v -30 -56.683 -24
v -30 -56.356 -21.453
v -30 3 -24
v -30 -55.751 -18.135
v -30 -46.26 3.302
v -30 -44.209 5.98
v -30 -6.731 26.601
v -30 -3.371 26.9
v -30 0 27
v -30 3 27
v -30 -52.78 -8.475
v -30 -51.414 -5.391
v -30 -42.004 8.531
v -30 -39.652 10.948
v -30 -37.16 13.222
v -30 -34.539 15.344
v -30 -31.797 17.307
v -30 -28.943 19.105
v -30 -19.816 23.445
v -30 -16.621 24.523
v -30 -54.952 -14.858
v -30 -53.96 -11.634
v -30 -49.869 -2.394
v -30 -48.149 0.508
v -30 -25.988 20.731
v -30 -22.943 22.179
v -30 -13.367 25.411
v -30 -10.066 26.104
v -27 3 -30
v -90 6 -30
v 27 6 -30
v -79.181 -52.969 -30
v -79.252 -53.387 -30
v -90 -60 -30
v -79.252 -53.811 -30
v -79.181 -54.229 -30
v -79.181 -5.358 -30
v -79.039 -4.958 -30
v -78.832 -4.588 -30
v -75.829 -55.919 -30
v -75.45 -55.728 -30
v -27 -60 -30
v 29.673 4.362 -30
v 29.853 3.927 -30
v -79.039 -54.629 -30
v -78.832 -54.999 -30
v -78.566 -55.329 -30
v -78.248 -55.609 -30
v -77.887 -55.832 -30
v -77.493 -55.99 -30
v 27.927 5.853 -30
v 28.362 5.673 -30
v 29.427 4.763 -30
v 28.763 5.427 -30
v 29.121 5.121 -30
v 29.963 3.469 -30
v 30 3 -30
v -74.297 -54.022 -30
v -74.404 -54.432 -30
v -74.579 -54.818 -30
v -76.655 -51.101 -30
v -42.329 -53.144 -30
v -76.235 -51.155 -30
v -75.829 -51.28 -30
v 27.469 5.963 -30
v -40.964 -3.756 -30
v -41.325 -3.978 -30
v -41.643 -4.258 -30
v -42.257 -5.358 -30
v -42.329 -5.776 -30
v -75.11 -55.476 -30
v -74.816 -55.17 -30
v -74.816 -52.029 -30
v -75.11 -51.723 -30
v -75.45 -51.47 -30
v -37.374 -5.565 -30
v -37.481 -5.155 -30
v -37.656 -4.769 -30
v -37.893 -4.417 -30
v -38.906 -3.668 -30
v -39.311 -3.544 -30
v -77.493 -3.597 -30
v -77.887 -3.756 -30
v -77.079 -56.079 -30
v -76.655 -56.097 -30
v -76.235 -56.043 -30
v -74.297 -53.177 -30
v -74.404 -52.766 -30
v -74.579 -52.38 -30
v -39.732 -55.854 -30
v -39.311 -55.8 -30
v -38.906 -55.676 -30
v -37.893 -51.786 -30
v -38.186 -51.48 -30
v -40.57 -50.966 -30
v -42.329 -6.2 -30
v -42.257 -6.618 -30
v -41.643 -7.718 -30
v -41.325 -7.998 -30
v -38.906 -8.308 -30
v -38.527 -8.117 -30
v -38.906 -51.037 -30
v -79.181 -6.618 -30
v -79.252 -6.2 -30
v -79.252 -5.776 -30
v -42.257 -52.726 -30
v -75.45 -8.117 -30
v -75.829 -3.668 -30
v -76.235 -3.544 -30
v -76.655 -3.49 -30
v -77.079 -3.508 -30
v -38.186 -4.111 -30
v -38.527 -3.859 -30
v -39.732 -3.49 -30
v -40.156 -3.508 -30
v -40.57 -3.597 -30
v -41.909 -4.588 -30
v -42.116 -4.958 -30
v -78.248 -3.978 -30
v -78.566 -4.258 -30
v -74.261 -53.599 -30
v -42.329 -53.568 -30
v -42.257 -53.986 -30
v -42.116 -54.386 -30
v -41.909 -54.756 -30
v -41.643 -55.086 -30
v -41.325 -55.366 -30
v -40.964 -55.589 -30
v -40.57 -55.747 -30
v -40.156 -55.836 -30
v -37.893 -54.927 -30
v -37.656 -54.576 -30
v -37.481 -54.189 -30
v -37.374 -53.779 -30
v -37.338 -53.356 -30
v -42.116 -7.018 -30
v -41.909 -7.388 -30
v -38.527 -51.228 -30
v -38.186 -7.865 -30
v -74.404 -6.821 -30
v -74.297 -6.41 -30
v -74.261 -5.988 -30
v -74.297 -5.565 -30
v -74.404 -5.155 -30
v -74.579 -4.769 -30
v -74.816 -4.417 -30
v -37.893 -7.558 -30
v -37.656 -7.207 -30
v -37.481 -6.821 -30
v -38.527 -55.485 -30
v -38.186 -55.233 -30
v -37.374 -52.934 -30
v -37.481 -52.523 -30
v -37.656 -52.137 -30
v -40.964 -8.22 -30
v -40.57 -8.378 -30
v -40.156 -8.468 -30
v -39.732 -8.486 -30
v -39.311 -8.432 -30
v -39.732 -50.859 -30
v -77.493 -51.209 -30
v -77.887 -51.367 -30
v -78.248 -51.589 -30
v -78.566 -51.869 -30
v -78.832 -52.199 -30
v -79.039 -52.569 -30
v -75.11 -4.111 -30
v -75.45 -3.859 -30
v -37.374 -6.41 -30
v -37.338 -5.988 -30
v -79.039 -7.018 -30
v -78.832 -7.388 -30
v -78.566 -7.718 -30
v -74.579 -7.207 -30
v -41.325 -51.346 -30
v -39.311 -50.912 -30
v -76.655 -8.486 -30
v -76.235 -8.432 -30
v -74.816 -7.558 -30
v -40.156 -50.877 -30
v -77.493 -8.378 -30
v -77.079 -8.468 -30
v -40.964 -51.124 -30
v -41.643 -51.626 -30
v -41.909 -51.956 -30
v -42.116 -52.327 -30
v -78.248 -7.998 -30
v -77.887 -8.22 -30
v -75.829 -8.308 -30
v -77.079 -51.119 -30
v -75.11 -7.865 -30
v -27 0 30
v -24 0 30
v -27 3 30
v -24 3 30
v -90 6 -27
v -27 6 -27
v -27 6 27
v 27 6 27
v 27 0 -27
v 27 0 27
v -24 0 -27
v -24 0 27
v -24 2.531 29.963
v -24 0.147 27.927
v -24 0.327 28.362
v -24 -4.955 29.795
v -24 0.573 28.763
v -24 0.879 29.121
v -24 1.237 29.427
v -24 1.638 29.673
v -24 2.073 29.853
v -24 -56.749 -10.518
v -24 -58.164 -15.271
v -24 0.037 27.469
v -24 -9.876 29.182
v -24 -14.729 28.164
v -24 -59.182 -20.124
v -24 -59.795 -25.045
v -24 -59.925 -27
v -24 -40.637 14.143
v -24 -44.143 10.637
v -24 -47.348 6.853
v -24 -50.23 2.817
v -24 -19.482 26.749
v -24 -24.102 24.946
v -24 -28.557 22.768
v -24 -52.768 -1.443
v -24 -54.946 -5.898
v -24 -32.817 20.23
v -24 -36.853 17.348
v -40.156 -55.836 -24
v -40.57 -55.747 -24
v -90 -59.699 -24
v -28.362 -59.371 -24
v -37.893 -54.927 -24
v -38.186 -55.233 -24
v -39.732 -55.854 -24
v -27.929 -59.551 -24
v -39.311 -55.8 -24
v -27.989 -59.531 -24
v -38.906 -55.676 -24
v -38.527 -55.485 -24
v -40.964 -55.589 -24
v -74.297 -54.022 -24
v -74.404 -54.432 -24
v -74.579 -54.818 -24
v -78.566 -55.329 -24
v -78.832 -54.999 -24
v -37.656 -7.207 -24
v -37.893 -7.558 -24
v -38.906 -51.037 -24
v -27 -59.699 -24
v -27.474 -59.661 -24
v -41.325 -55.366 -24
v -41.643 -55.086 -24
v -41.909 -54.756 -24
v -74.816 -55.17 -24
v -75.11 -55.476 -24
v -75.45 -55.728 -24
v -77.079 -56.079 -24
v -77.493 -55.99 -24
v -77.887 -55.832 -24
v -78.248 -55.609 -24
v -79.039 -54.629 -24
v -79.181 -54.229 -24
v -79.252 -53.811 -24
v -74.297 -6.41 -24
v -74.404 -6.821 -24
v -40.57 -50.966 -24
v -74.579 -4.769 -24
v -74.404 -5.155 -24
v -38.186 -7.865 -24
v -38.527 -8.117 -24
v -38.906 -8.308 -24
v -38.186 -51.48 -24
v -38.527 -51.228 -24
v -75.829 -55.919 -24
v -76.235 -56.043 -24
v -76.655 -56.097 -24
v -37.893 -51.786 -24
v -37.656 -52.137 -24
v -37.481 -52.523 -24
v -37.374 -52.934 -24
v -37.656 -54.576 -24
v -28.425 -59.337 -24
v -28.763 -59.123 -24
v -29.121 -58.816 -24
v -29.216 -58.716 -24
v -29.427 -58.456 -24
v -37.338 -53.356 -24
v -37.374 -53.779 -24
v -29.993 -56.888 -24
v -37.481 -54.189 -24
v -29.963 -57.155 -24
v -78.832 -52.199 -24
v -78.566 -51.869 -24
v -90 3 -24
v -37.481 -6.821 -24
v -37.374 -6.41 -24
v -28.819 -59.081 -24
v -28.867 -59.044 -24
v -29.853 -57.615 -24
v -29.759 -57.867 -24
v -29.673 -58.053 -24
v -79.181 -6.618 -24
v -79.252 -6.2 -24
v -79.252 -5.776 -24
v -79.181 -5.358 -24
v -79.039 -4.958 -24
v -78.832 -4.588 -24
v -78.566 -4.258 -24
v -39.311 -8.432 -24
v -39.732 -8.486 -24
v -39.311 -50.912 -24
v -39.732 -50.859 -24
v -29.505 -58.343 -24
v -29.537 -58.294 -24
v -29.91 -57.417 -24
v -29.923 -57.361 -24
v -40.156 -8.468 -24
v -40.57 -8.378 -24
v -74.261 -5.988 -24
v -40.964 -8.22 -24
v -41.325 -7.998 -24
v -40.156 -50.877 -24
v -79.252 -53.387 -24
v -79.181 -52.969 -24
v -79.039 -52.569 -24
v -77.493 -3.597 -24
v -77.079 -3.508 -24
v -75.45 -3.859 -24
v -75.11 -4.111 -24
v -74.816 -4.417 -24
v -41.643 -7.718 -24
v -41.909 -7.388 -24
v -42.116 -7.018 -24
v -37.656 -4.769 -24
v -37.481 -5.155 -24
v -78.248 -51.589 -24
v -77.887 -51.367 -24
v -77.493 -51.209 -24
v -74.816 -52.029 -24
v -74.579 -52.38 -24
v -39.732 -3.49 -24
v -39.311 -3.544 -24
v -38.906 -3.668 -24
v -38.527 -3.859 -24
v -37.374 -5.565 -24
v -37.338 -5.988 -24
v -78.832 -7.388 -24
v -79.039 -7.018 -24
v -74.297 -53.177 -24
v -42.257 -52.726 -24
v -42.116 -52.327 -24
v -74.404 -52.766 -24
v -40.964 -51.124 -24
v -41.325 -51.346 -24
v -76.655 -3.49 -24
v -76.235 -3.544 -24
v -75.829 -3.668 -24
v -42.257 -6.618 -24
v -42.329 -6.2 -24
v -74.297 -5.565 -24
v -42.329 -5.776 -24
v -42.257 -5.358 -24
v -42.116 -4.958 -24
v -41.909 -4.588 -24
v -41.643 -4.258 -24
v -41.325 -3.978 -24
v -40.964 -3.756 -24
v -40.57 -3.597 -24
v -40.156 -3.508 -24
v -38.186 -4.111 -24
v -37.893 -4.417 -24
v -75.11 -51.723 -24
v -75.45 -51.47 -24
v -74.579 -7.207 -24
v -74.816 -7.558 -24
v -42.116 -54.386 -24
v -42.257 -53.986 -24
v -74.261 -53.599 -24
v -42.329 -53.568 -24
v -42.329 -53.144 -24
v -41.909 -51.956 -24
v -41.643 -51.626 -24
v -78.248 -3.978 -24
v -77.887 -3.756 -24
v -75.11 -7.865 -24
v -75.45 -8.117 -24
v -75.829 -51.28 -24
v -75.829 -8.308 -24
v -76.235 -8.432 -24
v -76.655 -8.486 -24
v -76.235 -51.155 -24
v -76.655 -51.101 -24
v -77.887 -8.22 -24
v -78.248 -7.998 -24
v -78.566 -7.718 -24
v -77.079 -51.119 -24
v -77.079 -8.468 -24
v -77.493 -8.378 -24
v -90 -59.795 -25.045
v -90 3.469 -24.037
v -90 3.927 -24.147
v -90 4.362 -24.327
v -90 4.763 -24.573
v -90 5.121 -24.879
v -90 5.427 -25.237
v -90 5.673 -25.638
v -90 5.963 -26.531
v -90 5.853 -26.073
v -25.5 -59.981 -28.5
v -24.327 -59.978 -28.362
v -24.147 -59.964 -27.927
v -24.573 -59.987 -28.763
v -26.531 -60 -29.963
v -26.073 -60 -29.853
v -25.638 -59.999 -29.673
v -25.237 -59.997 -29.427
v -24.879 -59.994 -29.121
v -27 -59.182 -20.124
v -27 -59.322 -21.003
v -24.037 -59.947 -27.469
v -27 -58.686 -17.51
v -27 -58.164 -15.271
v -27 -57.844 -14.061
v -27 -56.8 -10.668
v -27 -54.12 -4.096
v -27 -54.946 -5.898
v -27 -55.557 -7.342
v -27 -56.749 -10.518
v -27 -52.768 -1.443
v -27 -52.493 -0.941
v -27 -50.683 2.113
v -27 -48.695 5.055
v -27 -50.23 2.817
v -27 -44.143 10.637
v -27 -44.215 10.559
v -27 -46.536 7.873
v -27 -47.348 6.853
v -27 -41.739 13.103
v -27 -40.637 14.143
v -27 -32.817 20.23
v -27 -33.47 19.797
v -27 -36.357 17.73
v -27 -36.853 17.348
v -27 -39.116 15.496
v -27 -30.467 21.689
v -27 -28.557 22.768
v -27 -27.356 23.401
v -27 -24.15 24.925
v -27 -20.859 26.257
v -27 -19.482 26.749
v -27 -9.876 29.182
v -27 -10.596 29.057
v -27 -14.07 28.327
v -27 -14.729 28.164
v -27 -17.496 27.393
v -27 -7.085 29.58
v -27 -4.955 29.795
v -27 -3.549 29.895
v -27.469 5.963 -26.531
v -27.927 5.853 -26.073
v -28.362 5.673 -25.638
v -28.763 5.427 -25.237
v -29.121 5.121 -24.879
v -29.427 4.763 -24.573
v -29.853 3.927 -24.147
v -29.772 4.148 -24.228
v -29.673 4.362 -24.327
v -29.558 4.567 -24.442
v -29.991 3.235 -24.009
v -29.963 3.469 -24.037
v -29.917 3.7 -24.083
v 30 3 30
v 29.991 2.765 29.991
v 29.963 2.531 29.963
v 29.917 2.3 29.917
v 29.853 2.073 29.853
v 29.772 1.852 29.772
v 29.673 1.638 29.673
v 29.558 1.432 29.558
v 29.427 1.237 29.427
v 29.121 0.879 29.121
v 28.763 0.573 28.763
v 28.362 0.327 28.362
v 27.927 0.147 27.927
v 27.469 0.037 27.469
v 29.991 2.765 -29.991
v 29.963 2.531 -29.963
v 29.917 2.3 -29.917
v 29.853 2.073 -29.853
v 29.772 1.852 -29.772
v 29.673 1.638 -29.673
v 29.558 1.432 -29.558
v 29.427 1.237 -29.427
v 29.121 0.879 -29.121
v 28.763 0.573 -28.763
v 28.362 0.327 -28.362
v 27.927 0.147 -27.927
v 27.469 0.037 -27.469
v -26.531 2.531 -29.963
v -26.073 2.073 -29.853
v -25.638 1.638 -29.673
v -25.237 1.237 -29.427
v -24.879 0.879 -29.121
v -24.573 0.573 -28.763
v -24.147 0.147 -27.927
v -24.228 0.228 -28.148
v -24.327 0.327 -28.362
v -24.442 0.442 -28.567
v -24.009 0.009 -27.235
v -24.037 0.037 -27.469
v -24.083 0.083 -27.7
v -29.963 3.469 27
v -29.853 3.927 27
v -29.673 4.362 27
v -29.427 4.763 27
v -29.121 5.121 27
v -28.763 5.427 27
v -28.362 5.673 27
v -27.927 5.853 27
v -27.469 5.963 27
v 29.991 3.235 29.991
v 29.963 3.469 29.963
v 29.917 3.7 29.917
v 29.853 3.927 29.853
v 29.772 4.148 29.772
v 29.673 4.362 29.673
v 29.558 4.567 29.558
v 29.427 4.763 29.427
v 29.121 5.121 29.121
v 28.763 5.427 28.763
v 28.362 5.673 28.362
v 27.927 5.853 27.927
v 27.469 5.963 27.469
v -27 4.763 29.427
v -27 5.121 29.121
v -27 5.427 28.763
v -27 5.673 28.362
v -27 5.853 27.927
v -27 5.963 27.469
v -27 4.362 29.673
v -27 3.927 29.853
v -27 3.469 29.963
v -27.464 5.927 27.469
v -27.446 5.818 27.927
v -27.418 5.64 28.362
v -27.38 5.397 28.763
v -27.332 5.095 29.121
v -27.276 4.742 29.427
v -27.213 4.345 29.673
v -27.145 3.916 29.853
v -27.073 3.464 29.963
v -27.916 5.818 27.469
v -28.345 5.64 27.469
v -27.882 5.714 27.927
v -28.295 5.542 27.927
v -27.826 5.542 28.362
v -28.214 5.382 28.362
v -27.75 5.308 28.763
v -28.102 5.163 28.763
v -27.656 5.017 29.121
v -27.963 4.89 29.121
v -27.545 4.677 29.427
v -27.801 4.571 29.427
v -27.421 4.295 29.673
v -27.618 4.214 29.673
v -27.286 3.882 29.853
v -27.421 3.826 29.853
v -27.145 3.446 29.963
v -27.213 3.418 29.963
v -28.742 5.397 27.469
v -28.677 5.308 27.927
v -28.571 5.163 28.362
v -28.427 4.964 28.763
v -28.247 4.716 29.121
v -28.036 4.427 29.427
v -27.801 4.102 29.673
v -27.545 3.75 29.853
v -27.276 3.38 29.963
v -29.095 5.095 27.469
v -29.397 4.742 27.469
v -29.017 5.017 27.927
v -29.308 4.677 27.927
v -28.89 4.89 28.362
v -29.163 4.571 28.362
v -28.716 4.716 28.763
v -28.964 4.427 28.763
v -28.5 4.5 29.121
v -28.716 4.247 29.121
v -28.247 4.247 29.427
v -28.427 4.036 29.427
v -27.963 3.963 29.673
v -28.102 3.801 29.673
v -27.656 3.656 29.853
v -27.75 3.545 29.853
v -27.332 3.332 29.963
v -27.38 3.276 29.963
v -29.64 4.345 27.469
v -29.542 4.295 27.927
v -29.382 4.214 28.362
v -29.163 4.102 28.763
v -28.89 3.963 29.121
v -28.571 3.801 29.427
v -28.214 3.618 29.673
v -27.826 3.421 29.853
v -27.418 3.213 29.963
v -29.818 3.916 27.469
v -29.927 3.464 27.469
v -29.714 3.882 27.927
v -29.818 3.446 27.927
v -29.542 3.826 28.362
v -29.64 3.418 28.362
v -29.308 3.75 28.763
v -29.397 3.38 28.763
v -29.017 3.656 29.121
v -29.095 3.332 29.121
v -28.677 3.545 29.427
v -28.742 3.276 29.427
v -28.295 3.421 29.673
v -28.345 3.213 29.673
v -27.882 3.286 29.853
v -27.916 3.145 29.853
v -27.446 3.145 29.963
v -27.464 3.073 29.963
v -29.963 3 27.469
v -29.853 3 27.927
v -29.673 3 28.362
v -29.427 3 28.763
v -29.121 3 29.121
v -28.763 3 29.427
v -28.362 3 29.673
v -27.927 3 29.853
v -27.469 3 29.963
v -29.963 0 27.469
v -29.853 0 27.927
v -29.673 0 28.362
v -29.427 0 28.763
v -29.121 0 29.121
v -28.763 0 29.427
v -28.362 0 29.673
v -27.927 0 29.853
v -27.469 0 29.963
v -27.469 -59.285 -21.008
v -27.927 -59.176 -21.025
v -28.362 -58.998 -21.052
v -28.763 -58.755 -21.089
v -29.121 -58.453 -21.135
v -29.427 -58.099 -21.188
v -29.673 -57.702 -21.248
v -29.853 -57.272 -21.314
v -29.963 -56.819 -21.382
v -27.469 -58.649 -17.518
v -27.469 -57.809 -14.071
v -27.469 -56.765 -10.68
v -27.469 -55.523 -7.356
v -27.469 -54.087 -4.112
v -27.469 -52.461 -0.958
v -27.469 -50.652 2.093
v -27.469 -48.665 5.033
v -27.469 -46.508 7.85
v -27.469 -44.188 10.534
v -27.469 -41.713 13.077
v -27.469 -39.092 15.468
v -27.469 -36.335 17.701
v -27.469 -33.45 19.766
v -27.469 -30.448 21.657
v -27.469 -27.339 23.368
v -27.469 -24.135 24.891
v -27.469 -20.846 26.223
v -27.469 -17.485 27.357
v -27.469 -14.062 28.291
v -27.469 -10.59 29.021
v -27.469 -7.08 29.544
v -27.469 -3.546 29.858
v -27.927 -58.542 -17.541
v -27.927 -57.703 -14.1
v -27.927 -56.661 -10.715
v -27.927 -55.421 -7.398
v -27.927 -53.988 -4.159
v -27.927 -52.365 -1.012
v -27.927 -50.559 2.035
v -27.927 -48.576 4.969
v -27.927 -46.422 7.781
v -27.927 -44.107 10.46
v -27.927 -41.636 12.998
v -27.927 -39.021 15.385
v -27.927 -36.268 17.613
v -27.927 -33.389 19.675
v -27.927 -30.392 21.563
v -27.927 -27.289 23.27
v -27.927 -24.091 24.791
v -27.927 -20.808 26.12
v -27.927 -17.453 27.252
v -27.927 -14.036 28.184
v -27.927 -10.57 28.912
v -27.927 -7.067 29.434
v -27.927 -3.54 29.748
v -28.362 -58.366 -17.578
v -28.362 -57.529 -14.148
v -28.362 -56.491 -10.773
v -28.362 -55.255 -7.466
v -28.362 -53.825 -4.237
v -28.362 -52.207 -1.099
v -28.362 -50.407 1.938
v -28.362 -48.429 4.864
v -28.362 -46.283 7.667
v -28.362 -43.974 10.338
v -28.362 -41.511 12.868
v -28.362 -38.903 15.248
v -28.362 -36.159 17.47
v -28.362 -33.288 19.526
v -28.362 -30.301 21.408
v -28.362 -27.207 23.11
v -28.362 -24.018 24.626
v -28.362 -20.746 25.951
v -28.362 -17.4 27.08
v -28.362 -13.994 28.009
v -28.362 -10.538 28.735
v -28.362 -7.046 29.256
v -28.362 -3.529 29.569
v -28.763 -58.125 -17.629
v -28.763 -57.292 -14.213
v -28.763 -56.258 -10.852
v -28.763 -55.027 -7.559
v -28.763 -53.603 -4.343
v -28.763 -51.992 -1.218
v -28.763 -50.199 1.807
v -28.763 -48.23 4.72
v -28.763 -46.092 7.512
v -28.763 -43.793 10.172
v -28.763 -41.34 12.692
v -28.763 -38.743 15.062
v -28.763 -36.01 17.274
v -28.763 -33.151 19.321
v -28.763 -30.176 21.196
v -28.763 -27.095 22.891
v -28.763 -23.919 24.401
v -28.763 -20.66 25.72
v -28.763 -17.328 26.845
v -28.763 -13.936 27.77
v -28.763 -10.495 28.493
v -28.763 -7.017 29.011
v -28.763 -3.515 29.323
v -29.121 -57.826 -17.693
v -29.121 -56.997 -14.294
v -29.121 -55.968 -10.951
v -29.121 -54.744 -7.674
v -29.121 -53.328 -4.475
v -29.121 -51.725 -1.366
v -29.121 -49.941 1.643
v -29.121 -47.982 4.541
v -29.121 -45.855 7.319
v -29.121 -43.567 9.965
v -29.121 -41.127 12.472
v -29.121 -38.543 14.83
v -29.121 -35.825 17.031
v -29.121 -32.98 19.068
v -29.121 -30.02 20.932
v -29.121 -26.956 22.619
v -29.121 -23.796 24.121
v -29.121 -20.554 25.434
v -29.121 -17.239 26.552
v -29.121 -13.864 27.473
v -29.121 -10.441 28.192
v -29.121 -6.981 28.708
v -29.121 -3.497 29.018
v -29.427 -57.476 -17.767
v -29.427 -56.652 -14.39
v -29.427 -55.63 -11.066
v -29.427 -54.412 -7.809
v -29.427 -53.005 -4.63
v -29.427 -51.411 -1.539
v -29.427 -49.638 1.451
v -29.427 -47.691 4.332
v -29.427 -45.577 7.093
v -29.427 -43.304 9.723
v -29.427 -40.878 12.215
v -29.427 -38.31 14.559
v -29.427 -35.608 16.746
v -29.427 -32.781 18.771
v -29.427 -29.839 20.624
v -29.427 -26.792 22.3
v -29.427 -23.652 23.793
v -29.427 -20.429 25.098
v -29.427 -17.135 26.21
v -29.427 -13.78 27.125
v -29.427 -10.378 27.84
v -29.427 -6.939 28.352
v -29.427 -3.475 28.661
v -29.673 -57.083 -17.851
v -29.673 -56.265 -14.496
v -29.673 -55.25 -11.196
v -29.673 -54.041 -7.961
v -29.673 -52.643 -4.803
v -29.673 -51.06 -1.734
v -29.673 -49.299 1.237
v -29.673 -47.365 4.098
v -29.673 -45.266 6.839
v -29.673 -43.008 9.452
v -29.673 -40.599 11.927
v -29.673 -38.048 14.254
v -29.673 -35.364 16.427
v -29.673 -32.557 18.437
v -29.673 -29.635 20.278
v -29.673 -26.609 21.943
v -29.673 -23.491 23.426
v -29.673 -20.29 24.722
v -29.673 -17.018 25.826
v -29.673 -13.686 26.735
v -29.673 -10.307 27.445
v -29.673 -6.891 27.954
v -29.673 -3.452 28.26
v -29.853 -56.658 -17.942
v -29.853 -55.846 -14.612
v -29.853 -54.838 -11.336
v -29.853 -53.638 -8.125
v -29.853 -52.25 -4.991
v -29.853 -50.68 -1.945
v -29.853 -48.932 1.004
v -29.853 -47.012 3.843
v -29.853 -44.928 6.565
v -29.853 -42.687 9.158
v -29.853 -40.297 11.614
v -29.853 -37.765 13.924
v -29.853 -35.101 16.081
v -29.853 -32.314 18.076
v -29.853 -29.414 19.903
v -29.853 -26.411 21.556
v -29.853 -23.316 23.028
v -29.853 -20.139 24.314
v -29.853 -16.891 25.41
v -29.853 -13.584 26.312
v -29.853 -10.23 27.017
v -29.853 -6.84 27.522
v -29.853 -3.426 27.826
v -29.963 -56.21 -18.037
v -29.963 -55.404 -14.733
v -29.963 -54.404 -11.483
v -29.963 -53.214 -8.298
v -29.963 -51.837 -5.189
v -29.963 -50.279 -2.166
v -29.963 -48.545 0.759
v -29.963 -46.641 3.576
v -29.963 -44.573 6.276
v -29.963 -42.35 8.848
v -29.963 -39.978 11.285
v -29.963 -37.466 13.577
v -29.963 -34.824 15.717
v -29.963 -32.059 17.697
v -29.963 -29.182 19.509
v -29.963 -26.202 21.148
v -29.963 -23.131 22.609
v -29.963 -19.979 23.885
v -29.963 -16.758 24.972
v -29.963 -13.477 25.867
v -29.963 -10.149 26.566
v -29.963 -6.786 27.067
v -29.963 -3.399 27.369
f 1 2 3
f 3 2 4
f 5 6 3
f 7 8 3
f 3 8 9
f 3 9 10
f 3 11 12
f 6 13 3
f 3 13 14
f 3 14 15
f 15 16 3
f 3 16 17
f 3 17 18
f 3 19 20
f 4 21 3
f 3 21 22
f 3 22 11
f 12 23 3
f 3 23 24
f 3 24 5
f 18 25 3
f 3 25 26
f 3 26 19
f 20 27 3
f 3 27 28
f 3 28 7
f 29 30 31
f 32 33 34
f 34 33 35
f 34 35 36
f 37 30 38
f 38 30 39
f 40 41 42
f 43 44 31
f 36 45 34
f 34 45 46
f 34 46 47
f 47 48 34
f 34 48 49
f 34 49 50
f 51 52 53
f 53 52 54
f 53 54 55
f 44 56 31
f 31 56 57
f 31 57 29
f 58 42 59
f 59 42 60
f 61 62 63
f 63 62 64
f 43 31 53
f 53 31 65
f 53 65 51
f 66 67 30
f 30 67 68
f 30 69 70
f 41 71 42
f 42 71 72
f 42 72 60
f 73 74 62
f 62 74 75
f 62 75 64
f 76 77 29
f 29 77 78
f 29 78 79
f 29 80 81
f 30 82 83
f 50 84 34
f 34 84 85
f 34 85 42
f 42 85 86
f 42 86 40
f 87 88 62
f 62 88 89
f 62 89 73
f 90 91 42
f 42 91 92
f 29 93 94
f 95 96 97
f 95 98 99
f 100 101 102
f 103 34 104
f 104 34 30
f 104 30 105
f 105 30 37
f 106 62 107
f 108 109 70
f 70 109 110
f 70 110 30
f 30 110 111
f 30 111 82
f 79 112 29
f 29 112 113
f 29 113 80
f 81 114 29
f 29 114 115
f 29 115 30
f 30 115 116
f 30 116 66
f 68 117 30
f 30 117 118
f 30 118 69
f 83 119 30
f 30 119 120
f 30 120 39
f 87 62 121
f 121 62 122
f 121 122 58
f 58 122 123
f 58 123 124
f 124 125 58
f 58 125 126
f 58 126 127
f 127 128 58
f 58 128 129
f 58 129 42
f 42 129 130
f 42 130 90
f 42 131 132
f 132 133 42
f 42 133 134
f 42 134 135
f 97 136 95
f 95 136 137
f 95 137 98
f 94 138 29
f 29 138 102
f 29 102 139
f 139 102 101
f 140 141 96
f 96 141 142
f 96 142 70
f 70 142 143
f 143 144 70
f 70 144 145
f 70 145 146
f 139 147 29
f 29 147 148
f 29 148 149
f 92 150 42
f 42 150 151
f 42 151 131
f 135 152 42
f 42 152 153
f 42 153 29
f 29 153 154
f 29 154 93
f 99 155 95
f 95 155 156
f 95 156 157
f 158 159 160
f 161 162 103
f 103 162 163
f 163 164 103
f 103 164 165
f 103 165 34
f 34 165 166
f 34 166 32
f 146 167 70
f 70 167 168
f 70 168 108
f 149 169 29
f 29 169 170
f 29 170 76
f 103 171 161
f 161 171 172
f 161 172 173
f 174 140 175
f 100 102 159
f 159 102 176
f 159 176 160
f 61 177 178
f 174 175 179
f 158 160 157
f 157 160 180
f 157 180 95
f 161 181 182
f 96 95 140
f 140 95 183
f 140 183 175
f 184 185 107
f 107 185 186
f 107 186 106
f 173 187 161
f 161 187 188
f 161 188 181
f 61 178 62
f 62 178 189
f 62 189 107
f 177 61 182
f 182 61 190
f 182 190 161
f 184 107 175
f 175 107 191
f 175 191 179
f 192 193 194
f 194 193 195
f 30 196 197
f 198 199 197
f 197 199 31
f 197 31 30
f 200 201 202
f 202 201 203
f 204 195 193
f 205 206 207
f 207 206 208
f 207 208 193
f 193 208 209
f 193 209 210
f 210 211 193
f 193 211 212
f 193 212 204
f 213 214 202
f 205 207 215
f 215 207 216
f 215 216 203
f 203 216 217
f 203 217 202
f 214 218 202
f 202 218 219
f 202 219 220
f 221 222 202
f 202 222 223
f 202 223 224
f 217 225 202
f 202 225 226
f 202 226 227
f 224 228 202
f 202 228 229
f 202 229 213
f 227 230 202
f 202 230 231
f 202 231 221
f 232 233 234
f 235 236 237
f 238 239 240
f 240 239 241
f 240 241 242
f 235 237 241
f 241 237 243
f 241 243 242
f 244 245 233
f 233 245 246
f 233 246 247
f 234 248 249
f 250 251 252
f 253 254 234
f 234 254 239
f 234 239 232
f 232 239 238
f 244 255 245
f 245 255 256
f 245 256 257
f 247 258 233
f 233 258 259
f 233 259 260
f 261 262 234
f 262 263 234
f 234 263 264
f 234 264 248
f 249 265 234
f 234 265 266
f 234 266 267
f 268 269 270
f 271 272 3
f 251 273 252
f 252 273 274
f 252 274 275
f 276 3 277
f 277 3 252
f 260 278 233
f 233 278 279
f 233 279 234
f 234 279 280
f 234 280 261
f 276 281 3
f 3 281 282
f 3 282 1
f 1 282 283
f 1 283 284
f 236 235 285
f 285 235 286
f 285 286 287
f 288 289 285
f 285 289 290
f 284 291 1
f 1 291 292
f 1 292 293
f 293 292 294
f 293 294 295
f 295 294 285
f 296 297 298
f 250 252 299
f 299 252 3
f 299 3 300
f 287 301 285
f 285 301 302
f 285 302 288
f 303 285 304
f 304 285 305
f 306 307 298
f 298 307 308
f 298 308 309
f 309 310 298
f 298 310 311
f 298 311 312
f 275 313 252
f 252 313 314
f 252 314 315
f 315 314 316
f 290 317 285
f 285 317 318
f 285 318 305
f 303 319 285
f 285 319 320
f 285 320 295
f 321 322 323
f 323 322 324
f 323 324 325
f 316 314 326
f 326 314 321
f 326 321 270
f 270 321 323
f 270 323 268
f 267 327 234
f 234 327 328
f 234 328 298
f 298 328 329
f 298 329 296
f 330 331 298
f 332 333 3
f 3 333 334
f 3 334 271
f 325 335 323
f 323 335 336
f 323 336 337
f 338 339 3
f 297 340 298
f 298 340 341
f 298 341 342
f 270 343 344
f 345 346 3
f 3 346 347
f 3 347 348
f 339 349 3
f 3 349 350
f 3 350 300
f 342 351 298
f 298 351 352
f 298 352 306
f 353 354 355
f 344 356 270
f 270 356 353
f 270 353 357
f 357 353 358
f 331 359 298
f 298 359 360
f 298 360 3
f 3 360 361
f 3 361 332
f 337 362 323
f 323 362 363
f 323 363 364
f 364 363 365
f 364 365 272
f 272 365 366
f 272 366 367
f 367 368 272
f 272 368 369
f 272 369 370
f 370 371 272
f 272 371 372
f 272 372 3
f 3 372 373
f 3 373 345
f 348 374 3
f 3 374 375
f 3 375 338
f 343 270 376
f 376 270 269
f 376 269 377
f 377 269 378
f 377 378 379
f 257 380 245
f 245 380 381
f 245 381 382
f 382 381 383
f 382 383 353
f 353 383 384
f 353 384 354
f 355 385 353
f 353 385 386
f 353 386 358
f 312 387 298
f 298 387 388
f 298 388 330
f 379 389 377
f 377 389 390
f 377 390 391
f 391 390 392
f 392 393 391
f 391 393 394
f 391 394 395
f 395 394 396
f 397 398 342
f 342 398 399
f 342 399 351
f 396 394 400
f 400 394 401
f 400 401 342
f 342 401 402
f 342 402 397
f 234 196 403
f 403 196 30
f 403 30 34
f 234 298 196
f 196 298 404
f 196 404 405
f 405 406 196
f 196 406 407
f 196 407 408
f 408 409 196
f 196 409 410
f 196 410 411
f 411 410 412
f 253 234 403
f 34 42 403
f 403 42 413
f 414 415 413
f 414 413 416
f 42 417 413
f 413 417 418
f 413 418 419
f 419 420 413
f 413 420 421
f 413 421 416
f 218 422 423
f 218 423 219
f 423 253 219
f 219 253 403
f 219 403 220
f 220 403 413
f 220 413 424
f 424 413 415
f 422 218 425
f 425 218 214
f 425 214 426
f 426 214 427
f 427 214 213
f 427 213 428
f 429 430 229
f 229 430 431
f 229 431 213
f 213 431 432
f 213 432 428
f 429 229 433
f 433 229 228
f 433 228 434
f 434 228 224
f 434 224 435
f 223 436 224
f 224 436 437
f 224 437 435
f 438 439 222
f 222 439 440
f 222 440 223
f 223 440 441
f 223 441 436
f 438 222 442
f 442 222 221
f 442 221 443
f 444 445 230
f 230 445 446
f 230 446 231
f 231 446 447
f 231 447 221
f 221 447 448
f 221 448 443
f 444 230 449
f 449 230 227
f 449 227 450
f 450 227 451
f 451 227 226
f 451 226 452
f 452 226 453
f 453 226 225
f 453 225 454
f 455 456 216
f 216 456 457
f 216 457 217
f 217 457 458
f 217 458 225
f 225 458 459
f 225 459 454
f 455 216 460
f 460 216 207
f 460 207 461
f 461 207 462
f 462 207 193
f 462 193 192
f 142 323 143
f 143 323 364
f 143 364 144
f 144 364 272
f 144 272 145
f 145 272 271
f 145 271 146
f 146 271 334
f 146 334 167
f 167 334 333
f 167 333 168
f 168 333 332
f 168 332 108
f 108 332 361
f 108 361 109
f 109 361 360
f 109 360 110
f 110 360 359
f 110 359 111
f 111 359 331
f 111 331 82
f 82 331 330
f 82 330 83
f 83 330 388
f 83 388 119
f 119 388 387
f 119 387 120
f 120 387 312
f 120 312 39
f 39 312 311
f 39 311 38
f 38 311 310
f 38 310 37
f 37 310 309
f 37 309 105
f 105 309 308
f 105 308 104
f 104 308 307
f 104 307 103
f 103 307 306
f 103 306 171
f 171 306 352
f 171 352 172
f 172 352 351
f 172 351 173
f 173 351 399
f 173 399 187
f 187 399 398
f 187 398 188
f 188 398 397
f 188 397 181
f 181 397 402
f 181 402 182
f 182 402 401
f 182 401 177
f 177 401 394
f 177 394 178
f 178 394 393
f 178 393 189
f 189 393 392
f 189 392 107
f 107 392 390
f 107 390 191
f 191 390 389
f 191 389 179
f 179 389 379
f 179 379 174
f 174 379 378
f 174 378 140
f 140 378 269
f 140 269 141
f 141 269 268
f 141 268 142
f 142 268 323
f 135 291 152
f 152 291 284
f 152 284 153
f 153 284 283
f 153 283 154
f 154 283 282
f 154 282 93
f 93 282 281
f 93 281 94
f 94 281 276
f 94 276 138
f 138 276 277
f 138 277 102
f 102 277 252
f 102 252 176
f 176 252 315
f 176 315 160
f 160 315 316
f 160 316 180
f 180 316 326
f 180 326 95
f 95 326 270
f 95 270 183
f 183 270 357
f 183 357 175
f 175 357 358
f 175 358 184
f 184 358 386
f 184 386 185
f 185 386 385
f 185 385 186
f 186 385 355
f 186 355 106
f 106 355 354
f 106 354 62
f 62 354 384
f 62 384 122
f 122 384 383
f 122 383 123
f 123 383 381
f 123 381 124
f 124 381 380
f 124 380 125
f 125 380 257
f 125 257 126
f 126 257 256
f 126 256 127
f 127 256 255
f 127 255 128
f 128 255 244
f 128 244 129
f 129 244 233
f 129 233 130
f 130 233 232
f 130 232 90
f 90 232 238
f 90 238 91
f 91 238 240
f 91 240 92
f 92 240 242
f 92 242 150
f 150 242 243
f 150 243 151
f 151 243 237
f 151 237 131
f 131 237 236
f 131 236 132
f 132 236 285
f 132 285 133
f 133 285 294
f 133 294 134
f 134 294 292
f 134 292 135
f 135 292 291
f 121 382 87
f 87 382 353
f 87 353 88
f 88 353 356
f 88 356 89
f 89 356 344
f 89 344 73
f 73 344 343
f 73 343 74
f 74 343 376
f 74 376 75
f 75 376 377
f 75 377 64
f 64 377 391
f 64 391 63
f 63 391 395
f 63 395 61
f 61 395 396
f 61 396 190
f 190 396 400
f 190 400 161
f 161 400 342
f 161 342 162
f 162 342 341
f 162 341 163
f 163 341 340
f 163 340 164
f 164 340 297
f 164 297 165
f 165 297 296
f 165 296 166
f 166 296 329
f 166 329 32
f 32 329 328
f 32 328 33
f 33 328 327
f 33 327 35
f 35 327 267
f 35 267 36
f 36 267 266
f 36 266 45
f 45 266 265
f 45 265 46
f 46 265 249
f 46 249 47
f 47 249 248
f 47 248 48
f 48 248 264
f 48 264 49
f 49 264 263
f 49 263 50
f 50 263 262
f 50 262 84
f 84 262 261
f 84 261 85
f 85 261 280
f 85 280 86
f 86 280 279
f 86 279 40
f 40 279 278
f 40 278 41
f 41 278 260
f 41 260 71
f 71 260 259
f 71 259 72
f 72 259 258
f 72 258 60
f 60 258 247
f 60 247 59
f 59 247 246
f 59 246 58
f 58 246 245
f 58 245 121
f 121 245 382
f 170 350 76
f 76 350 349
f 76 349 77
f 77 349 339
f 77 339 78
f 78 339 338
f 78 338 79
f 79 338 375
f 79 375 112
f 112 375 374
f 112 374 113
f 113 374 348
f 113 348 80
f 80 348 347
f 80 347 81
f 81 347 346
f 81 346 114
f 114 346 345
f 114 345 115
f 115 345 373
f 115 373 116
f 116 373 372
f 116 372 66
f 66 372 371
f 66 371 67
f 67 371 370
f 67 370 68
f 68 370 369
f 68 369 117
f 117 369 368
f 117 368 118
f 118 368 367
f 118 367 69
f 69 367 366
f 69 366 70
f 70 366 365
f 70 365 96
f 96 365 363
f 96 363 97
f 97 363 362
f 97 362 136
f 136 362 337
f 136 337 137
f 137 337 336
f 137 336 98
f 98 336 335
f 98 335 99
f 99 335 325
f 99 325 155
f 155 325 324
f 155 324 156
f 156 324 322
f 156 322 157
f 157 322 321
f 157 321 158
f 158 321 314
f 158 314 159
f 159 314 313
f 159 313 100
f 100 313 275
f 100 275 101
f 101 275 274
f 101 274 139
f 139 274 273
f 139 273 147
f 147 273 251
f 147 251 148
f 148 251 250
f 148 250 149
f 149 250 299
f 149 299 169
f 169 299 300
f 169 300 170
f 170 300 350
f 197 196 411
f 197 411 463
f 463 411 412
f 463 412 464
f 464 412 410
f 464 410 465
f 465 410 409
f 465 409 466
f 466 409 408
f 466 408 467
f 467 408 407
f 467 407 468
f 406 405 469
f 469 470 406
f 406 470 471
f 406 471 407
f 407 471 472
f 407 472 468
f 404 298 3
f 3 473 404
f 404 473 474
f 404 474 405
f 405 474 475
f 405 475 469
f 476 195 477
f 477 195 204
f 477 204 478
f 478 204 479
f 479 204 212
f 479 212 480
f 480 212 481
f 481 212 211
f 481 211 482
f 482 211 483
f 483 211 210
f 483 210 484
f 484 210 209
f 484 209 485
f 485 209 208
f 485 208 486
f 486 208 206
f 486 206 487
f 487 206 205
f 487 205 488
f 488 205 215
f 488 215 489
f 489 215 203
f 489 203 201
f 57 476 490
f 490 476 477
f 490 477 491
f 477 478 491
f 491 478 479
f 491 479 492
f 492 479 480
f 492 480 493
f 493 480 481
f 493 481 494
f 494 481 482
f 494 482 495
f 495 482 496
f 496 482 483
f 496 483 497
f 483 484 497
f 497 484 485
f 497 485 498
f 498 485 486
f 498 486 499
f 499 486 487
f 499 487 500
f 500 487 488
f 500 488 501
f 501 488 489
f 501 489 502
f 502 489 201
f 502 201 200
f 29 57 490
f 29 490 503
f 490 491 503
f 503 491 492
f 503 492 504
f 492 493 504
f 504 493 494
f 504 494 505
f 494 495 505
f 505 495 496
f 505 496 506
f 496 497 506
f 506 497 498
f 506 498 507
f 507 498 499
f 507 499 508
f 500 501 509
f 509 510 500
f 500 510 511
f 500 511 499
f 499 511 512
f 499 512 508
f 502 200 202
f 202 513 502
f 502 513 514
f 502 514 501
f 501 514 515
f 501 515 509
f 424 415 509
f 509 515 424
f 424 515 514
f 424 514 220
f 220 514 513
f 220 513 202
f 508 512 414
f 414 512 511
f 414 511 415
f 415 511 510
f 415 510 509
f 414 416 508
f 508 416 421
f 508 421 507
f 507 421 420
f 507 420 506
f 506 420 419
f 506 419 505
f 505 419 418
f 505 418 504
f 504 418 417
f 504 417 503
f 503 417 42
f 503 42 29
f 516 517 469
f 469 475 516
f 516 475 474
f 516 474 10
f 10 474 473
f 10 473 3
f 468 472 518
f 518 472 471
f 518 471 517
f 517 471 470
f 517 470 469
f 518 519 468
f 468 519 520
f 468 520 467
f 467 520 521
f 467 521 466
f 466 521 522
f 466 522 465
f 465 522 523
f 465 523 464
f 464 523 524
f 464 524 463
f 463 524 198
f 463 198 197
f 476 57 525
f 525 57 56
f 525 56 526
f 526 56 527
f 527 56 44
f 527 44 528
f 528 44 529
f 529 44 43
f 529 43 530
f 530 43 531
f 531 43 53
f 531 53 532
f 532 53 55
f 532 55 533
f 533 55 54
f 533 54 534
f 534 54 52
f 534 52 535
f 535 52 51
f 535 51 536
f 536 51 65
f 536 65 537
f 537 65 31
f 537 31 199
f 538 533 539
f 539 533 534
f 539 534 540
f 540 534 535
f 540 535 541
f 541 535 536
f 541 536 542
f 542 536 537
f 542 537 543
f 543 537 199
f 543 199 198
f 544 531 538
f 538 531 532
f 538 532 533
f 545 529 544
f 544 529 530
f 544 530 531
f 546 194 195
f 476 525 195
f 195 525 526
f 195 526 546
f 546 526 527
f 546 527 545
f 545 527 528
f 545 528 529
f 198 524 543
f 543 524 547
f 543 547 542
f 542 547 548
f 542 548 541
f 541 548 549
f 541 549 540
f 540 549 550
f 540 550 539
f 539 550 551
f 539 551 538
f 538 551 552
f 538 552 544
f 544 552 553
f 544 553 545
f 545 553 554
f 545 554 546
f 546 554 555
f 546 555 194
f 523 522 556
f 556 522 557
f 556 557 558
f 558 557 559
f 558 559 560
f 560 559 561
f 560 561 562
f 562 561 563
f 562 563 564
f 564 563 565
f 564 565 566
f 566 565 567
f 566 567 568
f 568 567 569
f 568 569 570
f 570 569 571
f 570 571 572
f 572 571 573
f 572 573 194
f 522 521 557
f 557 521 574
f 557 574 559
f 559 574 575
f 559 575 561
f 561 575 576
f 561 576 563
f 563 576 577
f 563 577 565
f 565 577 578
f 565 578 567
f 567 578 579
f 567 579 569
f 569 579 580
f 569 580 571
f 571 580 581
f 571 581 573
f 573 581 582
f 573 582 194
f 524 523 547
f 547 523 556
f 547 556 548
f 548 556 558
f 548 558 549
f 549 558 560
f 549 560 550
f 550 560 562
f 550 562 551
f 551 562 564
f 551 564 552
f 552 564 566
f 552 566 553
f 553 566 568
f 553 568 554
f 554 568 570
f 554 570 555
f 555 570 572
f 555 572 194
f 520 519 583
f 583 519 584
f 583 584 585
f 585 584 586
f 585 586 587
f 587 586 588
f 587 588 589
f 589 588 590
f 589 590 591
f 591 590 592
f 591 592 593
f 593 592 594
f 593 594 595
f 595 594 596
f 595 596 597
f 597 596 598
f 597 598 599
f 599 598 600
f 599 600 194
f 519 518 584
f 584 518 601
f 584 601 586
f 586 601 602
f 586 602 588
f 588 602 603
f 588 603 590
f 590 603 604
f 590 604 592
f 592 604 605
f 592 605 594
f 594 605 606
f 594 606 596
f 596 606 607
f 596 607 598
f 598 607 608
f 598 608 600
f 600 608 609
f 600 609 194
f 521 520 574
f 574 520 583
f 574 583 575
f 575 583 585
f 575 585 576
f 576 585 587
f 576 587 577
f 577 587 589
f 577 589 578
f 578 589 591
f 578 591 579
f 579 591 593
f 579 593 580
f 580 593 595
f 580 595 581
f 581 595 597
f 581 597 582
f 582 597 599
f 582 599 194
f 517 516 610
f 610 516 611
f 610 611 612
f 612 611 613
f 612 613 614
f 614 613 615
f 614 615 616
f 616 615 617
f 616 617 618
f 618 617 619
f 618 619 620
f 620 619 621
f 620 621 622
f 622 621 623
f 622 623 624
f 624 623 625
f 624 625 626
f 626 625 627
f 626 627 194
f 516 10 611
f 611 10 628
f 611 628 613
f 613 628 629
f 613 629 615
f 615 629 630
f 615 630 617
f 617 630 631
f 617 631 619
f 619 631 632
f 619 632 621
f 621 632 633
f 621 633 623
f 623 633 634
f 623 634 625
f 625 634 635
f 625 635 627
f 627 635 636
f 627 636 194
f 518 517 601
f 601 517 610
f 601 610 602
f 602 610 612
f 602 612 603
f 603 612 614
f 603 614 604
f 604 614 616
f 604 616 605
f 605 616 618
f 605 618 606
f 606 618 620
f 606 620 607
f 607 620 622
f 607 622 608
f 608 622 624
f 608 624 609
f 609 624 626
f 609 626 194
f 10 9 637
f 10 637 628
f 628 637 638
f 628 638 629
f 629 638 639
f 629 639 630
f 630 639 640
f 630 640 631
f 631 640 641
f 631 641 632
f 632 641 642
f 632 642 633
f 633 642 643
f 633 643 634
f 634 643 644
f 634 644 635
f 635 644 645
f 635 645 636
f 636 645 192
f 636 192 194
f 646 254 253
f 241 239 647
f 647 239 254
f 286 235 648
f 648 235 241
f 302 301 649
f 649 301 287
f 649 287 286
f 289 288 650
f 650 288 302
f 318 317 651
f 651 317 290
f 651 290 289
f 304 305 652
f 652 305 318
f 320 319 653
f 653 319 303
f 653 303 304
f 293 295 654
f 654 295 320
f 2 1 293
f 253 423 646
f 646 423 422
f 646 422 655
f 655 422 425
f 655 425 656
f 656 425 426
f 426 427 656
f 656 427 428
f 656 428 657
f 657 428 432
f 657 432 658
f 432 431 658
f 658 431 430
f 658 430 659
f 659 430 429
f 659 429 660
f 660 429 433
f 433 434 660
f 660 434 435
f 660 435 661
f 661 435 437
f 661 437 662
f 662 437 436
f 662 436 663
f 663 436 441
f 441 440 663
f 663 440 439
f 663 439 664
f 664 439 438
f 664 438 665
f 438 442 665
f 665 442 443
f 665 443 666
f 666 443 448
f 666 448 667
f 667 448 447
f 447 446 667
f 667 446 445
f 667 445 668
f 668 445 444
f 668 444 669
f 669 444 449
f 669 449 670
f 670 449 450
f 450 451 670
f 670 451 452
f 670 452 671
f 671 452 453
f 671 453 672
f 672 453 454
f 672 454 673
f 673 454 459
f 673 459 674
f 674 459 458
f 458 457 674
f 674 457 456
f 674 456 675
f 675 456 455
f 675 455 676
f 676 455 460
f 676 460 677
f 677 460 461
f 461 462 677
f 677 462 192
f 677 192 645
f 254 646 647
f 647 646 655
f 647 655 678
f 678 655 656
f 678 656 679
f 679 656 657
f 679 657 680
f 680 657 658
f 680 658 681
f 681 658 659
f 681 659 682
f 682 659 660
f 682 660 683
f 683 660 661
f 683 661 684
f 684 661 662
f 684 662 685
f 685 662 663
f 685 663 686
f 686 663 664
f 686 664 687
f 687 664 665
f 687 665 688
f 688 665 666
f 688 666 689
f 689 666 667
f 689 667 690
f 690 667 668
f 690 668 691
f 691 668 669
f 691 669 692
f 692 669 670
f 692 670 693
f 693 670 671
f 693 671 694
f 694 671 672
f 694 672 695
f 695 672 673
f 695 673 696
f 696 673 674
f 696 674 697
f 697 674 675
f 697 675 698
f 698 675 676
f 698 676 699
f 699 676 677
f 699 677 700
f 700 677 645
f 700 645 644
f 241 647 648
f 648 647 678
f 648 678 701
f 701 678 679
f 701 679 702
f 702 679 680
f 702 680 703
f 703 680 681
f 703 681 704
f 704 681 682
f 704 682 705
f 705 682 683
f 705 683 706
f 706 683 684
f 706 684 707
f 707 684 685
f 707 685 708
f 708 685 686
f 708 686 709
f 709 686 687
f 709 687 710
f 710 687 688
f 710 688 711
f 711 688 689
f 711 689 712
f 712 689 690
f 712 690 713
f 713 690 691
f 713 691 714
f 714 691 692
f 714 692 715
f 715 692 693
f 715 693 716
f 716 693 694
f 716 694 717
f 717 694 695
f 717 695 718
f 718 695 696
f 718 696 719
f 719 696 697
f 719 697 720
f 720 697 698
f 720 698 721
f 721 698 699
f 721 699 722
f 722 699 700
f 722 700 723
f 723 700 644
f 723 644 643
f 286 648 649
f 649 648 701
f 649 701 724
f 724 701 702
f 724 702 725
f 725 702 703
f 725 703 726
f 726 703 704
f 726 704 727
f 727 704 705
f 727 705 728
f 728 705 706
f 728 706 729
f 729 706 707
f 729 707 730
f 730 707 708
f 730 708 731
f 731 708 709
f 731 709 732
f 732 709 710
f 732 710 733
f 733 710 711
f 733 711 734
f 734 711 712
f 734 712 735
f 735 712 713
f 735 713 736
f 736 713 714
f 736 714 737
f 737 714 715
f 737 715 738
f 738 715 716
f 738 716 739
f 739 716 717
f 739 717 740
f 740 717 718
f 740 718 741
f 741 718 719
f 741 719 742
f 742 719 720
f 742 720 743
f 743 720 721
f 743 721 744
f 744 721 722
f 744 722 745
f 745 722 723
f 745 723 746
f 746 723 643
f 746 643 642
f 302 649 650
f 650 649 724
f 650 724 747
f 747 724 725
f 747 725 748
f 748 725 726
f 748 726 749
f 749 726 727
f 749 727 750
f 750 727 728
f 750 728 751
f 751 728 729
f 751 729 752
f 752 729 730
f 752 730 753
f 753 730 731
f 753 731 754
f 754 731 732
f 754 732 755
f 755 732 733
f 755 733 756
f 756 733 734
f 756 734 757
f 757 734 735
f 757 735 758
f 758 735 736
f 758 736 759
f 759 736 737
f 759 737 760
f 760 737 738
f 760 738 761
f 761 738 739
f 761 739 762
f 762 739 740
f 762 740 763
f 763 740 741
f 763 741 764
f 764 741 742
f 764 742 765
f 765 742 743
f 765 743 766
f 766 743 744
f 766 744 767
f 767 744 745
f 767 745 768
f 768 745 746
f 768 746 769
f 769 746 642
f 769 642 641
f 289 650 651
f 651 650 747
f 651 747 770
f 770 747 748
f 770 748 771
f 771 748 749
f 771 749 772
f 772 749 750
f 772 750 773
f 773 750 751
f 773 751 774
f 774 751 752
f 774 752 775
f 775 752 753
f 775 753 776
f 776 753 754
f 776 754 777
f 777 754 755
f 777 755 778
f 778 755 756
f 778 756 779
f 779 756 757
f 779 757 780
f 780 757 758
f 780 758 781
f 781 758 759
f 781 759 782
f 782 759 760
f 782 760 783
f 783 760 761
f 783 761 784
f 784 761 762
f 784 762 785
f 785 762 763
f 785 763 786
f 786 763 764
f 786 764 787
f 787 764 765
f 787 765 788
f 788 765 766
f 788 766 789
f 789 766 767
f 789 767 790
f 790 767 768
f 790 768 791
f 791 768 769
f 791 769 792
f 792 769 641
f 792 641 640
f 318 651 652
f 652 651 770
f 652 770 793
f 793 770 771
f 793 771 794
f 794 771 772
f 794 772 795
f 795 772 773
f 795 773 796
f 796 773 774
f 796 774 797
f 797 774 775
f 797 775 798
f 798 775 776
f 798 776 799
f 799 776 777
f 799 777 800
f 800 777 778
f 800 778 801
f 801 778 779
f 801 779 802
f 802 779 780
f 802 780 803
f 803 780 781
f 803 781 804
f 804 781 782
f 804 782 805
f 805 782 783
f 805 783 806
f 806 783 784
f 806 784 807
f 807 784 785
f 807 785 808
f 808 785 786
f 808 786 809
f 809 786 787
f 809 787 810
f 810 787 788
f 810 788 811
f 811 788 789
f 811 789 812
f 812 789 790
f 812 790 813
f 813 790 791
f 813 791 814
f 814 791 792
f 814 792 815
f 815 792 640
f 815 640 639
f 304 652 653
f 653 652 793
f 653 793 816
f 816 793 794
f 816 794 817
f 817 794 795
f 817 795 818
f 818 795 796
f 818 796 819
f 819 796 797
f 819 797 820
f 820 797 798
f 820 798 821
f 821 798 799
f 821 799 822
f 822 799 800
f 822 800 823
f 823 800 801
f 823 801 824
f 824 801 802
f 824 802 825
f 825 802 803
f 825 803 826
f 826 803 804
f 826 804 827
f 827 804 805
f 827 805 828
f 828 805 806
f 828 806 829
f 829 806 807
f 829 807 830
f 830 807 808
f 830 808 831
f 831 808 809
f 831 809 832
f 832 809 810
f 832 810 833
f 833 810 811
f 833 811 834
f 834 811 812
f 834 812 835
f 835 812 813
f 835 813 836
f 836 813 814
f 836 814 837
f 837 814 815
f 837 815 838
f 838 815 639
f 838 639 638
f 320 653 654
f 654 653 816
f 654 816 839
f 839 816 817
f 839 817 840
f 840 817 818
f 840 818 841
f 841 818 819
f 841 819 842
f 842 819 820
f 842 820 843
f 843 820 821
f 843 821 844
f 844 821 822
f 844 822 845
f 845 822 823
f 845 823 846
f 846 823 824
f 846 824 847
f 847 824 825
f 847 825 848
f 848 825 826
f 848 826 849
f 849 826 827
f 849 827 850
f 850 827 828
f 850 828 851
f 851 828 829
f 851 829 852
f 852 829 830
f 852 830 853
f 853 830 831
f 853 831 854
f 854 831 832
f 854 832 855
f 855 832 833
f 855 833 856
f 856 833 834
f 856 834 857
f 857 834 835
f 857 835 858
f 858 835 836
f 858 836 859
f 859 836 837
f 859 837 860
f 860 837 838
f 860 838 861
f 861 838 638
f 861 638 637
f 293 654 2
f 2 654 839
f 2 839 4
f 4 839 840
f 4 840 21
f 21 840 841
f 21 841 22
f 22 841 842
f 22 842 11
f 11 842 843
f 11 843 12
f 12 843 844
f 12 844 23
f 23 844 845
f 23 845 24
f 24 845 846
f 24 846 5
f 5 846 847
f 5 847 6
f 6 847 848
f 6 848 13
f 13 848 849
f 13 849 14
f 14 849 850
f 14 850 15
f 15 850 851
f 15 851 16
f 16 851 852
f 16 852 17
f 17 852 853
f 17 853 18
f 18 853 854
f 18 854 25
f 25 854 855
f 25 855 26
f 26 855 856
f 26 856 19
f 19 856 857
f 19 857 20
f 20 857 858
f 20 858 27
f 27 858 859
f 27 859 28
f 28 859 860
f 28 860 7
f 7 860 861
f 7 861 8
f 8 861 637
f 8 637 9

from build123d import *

# Parameters (mm, degrees)
SKETCH_1_W          = 60
SKETCH_1_H          = 60
EXTRUDE_312_DEPTH   = 6
SKETCH_2_W          = 6
SKETCH_2_H          = 60
EXTRUDE_2_DEPTH     = 60
SKETCH_3_W          = 6
SKETCH_3_H          = 66
EXTRUDE_708_DEPTH   = 60
FILLET_1_R          = 60
SKETCH_4_R          = 2.5
CUT_EXTRUDE_1_DEPTH = 6
FILLET_2_R          = 3
FILLET_3_R          = 3
FILLET_4_R          = 3
FILLET_7_R          = 3


with BuildPart() as part:
    # Эскиз1 → Extrude 312 (new body)
    with BuildSketch(Plane(origin=(0, 0, 0), x_dir=(1, 0, 0), z_dir=(0, 1, 0))):
        Rectangle(SKETCH_1_W, SKETCH_1_H)
    extrude(amount=EXTRUDE_312_DEPTH)

    # Эскиз2 → Бобышка-Вытянуть2 (add)
    with BuildSketch(Plane.XZ):
        with Locations((-27, 0)):
            Rectangle(SKETCH_2_W, SKETCH_2_H)
    extrude(amount=EXTRUDE_2_DEPTH)

    # Эскиз3 → Extrude 708 (add)
    with BuildSketch(Plane.ZY.offset(30)):
        with Locations((-27, -27)):
            Rectangle(SKETCH_3_W, SKETCH_3_H)
    extrude(amount=EXTRUDE_708_DEPTH)

    # Скругление1
    fillet_1_edges = [part.edges().sort_by_distance(p)[0] for p in [
        (-27, -60, 30),
    ]]
    fillet(fillet_1_edges, radius=FILLET_1_R - 0.0001)  # a hair under: the kernel refuses the full size

    # Эскиз4 → Вырез-Вытянуть1 (cut)
    with BuildSketch(Plane.XY.offset(-24)):
        with Locations((-76.761220605, -5.987815157)):
            Circle(SKETCH_4_R)
        with Locations((-39.838074985, -5.987815157)):
            Circle(SKETCH_4_R)
        with Locations((-76.761220605, -53.599239773)):
            Circle(SKETCH_4_R)
        with Locations((-39.838074985, -53.356324341)):
            Circle(SKETCH_4_R)
    extrude(amount=-CUT_EXTRUDE_1_DEPTH, mode=Mode.SUBTRACT)

    # Скругление2
    fillet_2_edges = [part.edges().sort_by_distance(p)[0] for p in [
        (-60, 6, -24),
    ]]
    fillet(fillet_2_edges, radius=FILLET_2_R)

    # Скругление3
    fillet_3_edges = [part.edges().sort_by_distance(p)[0] for p in [
        (3, 0, 30),
        (-24, -30, -30),
        (3, 0, -30),
        (30, 0, 0),
    ]]
    fillet(fillet_3_edges, radius=FILLET_3_R)

    # Скругление4
    fillet_4_edges = [part.edges().sort_by_distance(p)[0] for p in [
        (-30, 6, 1.5),
    ]]
    fillet(fillet_4_edges, radius=FILLET_4_R)

    # Скругление7
    fillet_7_edges = [part.edges().sort_by_distance(p)[0] for p in [
        (-30, -40.249290054, 14.497186422),
        (-30, 1.49995, 30),
        (-29.121320344, 5.121320344, 30),
        (30, 6, 0),
        (1.5, 6, 30),
    ]]
    fillet(fillet_7_edges, radius=FILLET_7_R - 0.0001)  # a hair under: the kernel refuses the full size


solid = part.part
